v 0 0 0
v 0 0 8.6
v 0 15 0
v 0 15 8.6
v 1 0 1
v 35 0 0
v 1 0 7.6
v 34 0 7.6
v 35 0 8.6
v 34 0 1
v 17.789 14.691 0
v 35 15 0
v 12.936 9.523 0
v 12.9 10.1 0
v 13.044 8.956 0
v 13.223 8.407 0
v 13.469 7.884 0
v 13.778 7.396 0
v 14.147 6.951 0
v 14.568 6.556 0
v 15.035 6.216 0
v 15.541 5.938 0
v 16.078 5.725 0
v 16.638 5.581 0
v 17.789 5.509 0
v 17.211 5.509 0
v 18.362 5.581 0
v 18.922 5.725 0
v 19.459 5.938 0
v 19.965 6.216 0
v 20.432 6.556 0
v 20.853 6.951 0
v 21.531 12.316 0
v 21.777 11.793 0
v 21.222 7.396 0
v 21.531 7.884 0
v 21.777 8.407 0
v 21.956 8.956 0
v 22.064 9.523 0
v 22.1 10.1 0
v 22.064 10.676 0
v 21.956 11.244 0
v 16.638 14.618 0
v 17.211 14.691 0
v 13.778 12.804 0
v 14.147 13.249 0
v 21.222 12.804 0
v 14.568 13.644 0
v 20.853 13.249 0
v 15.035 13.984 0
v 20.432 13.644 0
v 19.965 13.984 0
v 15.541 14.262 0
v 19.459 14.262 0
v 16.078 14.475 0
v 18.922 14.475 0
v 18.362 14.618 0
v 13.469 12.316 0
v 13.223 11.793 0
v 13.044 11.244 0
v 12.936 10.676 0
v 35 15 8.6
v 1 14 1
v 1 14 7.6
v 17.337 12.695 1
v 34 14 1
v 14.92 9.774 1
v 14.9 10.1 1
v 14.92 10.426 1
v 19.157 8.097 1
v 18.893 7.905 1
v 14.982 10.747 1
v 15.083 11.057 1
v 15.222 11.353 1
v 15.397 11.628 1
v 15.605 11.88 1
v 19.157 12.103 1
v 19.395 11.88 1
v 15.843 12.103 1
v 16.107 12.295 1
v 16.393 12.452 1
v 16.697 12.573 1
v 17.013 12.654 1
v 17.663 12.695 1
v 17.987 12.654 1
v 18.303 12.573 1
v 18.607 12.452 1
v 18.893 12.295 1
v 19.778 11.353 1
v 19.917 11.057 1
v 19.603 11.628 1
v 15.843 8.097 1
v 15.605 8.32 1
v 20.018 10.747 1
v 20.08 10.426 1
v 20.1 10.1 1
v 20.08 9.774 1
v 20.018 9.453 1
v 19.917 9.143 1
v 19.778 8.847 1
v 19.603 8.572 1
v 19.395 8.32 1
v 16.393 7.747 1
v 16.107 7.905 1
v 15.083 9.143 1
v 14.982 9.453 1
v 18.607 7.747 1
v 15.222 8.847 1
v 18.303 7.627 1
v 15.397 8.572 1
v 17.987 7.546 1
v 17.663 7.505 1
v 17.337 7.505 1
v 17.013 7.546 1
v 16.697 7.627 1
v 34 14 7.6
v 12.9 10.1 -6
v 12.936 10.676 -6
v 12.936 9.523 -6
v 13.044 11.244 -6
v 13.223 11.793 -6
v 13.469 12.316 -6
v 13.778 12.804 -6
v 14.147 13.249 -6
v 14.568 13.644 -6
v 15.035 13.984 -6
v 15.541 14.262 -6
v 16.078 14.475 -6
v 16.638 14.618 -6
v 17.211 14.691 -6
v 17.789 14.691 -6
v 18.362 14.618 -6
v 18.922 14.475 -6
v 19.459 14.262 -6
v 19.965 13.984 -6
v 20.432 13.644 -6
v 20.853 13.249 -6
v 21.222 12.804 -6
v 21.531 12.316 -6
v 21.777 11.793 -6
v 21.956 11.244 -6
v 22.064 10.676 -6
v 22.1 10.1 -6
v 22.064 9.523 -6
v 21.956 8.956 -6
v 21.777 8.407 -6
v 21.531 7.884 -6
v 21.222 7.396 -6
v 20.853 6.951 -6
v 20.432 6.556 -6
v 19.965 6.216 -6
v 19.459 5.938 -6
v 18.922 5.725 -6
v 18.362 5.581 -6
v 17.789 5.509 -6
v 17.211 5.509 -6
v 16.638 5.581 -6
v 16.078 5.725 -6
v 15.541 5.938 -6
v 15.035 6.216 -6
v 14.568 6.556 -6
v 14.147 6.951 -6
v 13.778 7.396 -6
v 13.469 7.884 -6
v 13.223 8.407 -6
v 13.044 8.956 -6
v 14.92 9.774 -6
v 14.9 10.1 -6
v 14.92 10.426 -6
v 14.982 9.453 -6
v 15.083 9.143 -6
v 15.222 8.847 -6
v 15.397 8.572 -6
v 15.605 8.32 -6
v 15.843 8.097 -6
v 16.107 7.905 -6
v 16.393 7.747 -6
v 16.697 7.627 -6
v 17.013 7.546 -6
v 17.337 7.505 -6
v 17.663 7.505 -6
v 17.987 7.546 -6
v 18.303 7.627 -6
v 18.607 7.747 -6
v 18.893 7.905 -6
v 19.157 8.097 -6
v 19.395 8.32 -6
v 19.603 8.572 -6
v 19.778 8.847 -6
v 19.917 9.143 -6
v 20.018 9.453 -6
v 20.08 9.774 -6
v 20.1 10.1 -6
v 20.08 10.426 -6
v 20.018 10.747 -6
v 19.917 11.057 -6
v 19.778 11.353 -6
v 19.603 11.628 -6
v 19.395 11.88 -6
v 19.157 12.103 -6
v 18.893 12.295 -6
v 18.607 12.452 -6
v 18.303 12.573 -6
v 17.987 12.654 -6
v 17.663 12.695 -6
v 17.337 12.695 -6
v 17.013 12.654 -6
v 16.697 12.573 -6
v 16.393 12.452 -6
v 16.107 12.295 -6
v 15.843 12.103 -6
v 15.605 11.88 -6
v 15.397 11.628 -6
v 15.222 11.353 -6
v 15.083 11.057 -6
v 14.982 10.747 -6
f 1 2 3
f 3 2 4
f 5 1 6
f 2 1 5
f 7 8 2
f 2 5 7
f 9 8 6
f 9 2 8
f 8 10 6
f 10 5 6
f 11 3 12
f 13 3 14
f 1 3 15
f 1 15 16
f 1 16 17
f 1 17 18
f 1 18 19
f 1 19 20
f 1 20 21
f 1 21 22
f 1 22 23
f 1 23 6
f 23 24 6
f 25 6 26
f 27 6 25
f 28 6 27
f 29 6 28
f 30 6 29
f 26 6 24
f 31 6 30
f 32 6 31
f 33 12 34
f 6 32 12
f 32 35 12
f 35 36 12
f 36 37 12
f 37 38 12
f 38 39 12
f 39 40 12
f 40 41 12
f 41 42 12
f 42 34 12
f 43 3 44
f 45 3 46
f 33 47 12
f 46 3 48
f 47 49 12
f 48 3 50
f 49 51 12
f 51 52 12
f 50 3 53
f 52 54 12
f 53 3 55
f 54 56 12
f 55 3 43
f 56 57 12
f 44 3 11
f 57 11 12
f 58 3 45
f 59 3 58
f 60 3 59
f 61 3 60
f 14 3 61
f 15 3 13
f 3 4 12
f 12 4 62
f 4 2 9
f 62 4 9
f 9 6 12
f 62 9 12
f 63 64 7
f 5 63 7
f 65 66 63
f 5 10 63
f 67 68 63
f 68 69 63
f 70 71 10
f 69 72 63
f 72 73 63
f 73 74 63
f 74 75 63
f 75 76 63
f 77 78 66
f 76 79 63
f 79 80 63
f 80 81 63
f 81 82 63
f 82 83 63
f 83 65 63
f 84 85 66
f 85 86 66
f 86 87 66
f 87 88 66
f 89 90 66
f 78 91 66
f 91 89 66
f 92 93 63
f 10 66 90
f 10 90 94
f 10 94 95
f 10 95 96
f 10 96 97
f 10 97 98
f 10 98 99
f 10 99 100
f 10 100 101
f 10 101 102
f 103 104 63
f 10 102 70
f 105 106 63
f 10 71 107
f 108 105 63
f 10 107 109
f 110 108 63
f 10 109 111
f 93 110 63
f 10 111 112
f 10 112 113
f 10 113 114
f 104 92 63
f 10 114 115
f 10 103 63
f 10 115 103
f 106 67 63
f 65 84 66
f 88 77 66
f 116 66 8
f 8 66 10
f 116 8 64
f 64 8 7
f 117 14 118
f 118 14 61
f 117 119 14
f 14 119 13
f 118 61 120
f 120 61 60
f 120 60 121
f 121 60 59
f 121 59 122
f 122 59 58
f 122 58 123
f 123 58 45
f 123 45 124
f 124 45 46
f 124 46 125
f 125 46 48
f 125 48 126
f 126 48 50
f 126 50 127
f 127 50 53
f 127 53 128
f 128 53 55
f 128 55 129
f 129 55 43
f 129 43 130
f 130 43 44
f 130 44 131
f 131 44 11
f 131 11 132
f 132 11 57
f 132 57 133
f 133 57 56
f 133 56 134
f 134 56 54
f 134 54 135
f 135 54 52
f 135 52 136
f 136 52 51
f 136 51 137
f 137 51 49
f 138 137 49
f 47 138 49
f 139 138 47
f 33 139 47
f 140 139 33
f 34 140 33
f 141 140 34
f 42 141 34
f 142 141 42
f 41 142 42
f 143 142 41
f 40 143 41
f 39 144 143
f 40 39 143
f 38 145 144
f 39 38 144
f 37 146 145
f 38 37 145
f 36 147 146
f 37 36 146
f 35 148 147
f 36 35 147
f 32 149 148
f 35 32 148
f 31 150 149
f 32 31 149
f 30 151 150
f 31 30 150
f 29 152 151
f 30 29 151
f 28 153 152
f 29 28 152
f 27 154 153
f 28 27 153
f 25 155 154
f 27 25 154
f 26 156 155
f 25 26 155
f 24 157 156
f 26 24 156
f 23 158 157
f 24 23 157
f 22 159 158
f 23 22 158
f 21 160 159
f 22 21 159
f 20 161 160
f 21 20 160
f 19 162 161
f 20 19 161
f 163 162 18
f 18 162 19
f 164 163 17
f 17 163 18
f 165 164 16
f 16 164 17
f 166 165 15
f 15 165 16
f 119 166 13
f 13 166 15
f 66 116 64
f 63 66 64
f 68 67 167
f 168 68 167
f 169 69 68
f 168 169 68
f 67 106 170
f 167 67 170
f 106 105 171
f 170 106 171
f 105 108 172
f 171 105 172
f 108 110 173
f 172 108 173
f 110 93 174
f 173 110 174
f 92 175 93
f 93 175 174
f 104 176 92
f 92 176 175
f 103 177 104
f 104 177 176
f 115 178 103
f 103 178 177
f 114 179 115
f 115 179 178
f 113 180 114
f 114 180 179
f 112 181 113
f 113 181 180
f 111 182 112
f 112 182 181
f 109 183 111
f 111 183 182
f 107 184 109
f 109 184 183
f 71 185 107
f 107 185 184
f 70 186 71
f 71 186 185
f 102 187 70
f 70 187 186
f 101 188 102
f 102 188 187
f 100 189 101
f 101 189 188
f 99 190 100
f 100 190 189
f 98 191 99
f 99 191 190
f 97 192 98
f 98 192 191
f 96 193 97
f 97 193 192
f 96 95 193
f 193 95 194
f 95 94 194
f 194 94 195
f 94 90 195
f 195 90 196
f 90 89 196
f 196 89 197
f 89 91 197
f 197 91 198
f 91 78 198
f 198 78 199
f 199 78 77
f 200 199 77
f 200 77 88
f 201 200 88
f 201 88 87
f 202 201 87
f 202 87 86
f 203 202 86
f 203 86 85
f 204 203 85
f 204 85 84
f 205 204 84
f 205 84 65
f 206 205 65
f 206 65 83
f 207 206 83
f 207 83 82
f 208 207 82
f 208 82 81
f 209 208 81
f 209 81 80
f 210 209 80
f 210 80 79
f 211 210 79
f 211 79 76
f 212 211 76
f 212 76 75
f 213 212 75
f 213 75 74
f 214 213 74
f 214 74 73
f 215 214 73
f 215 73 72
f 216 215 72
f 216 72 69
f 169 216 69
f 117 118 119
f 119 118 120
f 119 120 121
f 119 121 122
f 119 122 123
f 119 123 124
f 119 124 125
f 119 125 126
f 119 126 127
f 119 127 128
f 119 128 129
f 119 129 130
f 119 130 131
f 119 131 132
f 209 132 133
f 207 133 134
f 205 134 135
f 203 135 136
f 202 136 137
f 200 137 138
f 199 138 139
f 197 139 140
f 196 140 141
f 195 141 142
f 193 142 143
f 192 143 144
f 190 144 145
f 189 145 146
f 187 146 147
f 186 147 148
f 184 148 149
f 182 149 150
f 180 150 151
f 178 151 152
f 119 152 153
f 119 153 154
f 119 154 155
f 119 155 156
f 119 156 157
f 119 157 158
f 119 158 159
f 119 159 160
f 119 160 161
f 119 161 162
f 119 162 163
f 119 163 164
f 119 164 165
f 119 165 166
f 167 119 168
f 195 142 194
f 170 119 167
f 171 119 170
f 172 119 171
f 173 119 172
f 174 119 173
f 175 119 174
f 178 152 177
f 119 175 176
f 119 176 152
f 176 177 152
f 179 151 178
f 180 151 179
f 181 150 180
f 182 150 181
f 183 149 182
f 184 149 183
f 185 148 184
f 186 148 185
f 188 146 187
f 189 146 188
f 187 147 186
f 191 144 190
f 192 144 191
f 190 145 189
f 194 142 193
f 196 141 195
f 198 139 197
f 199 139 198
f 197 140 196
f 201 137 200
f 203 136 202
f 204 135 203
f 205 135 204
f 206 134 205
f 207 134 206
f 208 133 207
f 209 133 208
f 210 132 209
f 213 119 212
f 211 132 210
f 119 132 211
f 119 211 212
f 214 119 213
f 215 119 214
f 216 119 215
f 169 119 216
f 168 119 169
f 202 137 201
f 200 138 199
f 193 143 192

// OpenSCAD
// Fan adapter for tube

$fn = 50;
t = 1;

// Side vent
d = 3;
l = 15;
h = 8.6;
w = 35;

// Tube holders
r = 2.6;
strain_relief_h = 8;

difference(){
	union(){
	translate([w/2,l/2+r,-strain_relief_h+t+1])
		cylinder(h=strain_relief_h, r=r+2*t);
		cube([w,l,h]);
	}
	translate([w/2,l/2+r,-strain_relief_h+t+1])
	cylinder(h=strain_relief_h, r=r);

	translate([t,0,t])
		cube([w-2*t,l-t,h-2*t]);
		
}
